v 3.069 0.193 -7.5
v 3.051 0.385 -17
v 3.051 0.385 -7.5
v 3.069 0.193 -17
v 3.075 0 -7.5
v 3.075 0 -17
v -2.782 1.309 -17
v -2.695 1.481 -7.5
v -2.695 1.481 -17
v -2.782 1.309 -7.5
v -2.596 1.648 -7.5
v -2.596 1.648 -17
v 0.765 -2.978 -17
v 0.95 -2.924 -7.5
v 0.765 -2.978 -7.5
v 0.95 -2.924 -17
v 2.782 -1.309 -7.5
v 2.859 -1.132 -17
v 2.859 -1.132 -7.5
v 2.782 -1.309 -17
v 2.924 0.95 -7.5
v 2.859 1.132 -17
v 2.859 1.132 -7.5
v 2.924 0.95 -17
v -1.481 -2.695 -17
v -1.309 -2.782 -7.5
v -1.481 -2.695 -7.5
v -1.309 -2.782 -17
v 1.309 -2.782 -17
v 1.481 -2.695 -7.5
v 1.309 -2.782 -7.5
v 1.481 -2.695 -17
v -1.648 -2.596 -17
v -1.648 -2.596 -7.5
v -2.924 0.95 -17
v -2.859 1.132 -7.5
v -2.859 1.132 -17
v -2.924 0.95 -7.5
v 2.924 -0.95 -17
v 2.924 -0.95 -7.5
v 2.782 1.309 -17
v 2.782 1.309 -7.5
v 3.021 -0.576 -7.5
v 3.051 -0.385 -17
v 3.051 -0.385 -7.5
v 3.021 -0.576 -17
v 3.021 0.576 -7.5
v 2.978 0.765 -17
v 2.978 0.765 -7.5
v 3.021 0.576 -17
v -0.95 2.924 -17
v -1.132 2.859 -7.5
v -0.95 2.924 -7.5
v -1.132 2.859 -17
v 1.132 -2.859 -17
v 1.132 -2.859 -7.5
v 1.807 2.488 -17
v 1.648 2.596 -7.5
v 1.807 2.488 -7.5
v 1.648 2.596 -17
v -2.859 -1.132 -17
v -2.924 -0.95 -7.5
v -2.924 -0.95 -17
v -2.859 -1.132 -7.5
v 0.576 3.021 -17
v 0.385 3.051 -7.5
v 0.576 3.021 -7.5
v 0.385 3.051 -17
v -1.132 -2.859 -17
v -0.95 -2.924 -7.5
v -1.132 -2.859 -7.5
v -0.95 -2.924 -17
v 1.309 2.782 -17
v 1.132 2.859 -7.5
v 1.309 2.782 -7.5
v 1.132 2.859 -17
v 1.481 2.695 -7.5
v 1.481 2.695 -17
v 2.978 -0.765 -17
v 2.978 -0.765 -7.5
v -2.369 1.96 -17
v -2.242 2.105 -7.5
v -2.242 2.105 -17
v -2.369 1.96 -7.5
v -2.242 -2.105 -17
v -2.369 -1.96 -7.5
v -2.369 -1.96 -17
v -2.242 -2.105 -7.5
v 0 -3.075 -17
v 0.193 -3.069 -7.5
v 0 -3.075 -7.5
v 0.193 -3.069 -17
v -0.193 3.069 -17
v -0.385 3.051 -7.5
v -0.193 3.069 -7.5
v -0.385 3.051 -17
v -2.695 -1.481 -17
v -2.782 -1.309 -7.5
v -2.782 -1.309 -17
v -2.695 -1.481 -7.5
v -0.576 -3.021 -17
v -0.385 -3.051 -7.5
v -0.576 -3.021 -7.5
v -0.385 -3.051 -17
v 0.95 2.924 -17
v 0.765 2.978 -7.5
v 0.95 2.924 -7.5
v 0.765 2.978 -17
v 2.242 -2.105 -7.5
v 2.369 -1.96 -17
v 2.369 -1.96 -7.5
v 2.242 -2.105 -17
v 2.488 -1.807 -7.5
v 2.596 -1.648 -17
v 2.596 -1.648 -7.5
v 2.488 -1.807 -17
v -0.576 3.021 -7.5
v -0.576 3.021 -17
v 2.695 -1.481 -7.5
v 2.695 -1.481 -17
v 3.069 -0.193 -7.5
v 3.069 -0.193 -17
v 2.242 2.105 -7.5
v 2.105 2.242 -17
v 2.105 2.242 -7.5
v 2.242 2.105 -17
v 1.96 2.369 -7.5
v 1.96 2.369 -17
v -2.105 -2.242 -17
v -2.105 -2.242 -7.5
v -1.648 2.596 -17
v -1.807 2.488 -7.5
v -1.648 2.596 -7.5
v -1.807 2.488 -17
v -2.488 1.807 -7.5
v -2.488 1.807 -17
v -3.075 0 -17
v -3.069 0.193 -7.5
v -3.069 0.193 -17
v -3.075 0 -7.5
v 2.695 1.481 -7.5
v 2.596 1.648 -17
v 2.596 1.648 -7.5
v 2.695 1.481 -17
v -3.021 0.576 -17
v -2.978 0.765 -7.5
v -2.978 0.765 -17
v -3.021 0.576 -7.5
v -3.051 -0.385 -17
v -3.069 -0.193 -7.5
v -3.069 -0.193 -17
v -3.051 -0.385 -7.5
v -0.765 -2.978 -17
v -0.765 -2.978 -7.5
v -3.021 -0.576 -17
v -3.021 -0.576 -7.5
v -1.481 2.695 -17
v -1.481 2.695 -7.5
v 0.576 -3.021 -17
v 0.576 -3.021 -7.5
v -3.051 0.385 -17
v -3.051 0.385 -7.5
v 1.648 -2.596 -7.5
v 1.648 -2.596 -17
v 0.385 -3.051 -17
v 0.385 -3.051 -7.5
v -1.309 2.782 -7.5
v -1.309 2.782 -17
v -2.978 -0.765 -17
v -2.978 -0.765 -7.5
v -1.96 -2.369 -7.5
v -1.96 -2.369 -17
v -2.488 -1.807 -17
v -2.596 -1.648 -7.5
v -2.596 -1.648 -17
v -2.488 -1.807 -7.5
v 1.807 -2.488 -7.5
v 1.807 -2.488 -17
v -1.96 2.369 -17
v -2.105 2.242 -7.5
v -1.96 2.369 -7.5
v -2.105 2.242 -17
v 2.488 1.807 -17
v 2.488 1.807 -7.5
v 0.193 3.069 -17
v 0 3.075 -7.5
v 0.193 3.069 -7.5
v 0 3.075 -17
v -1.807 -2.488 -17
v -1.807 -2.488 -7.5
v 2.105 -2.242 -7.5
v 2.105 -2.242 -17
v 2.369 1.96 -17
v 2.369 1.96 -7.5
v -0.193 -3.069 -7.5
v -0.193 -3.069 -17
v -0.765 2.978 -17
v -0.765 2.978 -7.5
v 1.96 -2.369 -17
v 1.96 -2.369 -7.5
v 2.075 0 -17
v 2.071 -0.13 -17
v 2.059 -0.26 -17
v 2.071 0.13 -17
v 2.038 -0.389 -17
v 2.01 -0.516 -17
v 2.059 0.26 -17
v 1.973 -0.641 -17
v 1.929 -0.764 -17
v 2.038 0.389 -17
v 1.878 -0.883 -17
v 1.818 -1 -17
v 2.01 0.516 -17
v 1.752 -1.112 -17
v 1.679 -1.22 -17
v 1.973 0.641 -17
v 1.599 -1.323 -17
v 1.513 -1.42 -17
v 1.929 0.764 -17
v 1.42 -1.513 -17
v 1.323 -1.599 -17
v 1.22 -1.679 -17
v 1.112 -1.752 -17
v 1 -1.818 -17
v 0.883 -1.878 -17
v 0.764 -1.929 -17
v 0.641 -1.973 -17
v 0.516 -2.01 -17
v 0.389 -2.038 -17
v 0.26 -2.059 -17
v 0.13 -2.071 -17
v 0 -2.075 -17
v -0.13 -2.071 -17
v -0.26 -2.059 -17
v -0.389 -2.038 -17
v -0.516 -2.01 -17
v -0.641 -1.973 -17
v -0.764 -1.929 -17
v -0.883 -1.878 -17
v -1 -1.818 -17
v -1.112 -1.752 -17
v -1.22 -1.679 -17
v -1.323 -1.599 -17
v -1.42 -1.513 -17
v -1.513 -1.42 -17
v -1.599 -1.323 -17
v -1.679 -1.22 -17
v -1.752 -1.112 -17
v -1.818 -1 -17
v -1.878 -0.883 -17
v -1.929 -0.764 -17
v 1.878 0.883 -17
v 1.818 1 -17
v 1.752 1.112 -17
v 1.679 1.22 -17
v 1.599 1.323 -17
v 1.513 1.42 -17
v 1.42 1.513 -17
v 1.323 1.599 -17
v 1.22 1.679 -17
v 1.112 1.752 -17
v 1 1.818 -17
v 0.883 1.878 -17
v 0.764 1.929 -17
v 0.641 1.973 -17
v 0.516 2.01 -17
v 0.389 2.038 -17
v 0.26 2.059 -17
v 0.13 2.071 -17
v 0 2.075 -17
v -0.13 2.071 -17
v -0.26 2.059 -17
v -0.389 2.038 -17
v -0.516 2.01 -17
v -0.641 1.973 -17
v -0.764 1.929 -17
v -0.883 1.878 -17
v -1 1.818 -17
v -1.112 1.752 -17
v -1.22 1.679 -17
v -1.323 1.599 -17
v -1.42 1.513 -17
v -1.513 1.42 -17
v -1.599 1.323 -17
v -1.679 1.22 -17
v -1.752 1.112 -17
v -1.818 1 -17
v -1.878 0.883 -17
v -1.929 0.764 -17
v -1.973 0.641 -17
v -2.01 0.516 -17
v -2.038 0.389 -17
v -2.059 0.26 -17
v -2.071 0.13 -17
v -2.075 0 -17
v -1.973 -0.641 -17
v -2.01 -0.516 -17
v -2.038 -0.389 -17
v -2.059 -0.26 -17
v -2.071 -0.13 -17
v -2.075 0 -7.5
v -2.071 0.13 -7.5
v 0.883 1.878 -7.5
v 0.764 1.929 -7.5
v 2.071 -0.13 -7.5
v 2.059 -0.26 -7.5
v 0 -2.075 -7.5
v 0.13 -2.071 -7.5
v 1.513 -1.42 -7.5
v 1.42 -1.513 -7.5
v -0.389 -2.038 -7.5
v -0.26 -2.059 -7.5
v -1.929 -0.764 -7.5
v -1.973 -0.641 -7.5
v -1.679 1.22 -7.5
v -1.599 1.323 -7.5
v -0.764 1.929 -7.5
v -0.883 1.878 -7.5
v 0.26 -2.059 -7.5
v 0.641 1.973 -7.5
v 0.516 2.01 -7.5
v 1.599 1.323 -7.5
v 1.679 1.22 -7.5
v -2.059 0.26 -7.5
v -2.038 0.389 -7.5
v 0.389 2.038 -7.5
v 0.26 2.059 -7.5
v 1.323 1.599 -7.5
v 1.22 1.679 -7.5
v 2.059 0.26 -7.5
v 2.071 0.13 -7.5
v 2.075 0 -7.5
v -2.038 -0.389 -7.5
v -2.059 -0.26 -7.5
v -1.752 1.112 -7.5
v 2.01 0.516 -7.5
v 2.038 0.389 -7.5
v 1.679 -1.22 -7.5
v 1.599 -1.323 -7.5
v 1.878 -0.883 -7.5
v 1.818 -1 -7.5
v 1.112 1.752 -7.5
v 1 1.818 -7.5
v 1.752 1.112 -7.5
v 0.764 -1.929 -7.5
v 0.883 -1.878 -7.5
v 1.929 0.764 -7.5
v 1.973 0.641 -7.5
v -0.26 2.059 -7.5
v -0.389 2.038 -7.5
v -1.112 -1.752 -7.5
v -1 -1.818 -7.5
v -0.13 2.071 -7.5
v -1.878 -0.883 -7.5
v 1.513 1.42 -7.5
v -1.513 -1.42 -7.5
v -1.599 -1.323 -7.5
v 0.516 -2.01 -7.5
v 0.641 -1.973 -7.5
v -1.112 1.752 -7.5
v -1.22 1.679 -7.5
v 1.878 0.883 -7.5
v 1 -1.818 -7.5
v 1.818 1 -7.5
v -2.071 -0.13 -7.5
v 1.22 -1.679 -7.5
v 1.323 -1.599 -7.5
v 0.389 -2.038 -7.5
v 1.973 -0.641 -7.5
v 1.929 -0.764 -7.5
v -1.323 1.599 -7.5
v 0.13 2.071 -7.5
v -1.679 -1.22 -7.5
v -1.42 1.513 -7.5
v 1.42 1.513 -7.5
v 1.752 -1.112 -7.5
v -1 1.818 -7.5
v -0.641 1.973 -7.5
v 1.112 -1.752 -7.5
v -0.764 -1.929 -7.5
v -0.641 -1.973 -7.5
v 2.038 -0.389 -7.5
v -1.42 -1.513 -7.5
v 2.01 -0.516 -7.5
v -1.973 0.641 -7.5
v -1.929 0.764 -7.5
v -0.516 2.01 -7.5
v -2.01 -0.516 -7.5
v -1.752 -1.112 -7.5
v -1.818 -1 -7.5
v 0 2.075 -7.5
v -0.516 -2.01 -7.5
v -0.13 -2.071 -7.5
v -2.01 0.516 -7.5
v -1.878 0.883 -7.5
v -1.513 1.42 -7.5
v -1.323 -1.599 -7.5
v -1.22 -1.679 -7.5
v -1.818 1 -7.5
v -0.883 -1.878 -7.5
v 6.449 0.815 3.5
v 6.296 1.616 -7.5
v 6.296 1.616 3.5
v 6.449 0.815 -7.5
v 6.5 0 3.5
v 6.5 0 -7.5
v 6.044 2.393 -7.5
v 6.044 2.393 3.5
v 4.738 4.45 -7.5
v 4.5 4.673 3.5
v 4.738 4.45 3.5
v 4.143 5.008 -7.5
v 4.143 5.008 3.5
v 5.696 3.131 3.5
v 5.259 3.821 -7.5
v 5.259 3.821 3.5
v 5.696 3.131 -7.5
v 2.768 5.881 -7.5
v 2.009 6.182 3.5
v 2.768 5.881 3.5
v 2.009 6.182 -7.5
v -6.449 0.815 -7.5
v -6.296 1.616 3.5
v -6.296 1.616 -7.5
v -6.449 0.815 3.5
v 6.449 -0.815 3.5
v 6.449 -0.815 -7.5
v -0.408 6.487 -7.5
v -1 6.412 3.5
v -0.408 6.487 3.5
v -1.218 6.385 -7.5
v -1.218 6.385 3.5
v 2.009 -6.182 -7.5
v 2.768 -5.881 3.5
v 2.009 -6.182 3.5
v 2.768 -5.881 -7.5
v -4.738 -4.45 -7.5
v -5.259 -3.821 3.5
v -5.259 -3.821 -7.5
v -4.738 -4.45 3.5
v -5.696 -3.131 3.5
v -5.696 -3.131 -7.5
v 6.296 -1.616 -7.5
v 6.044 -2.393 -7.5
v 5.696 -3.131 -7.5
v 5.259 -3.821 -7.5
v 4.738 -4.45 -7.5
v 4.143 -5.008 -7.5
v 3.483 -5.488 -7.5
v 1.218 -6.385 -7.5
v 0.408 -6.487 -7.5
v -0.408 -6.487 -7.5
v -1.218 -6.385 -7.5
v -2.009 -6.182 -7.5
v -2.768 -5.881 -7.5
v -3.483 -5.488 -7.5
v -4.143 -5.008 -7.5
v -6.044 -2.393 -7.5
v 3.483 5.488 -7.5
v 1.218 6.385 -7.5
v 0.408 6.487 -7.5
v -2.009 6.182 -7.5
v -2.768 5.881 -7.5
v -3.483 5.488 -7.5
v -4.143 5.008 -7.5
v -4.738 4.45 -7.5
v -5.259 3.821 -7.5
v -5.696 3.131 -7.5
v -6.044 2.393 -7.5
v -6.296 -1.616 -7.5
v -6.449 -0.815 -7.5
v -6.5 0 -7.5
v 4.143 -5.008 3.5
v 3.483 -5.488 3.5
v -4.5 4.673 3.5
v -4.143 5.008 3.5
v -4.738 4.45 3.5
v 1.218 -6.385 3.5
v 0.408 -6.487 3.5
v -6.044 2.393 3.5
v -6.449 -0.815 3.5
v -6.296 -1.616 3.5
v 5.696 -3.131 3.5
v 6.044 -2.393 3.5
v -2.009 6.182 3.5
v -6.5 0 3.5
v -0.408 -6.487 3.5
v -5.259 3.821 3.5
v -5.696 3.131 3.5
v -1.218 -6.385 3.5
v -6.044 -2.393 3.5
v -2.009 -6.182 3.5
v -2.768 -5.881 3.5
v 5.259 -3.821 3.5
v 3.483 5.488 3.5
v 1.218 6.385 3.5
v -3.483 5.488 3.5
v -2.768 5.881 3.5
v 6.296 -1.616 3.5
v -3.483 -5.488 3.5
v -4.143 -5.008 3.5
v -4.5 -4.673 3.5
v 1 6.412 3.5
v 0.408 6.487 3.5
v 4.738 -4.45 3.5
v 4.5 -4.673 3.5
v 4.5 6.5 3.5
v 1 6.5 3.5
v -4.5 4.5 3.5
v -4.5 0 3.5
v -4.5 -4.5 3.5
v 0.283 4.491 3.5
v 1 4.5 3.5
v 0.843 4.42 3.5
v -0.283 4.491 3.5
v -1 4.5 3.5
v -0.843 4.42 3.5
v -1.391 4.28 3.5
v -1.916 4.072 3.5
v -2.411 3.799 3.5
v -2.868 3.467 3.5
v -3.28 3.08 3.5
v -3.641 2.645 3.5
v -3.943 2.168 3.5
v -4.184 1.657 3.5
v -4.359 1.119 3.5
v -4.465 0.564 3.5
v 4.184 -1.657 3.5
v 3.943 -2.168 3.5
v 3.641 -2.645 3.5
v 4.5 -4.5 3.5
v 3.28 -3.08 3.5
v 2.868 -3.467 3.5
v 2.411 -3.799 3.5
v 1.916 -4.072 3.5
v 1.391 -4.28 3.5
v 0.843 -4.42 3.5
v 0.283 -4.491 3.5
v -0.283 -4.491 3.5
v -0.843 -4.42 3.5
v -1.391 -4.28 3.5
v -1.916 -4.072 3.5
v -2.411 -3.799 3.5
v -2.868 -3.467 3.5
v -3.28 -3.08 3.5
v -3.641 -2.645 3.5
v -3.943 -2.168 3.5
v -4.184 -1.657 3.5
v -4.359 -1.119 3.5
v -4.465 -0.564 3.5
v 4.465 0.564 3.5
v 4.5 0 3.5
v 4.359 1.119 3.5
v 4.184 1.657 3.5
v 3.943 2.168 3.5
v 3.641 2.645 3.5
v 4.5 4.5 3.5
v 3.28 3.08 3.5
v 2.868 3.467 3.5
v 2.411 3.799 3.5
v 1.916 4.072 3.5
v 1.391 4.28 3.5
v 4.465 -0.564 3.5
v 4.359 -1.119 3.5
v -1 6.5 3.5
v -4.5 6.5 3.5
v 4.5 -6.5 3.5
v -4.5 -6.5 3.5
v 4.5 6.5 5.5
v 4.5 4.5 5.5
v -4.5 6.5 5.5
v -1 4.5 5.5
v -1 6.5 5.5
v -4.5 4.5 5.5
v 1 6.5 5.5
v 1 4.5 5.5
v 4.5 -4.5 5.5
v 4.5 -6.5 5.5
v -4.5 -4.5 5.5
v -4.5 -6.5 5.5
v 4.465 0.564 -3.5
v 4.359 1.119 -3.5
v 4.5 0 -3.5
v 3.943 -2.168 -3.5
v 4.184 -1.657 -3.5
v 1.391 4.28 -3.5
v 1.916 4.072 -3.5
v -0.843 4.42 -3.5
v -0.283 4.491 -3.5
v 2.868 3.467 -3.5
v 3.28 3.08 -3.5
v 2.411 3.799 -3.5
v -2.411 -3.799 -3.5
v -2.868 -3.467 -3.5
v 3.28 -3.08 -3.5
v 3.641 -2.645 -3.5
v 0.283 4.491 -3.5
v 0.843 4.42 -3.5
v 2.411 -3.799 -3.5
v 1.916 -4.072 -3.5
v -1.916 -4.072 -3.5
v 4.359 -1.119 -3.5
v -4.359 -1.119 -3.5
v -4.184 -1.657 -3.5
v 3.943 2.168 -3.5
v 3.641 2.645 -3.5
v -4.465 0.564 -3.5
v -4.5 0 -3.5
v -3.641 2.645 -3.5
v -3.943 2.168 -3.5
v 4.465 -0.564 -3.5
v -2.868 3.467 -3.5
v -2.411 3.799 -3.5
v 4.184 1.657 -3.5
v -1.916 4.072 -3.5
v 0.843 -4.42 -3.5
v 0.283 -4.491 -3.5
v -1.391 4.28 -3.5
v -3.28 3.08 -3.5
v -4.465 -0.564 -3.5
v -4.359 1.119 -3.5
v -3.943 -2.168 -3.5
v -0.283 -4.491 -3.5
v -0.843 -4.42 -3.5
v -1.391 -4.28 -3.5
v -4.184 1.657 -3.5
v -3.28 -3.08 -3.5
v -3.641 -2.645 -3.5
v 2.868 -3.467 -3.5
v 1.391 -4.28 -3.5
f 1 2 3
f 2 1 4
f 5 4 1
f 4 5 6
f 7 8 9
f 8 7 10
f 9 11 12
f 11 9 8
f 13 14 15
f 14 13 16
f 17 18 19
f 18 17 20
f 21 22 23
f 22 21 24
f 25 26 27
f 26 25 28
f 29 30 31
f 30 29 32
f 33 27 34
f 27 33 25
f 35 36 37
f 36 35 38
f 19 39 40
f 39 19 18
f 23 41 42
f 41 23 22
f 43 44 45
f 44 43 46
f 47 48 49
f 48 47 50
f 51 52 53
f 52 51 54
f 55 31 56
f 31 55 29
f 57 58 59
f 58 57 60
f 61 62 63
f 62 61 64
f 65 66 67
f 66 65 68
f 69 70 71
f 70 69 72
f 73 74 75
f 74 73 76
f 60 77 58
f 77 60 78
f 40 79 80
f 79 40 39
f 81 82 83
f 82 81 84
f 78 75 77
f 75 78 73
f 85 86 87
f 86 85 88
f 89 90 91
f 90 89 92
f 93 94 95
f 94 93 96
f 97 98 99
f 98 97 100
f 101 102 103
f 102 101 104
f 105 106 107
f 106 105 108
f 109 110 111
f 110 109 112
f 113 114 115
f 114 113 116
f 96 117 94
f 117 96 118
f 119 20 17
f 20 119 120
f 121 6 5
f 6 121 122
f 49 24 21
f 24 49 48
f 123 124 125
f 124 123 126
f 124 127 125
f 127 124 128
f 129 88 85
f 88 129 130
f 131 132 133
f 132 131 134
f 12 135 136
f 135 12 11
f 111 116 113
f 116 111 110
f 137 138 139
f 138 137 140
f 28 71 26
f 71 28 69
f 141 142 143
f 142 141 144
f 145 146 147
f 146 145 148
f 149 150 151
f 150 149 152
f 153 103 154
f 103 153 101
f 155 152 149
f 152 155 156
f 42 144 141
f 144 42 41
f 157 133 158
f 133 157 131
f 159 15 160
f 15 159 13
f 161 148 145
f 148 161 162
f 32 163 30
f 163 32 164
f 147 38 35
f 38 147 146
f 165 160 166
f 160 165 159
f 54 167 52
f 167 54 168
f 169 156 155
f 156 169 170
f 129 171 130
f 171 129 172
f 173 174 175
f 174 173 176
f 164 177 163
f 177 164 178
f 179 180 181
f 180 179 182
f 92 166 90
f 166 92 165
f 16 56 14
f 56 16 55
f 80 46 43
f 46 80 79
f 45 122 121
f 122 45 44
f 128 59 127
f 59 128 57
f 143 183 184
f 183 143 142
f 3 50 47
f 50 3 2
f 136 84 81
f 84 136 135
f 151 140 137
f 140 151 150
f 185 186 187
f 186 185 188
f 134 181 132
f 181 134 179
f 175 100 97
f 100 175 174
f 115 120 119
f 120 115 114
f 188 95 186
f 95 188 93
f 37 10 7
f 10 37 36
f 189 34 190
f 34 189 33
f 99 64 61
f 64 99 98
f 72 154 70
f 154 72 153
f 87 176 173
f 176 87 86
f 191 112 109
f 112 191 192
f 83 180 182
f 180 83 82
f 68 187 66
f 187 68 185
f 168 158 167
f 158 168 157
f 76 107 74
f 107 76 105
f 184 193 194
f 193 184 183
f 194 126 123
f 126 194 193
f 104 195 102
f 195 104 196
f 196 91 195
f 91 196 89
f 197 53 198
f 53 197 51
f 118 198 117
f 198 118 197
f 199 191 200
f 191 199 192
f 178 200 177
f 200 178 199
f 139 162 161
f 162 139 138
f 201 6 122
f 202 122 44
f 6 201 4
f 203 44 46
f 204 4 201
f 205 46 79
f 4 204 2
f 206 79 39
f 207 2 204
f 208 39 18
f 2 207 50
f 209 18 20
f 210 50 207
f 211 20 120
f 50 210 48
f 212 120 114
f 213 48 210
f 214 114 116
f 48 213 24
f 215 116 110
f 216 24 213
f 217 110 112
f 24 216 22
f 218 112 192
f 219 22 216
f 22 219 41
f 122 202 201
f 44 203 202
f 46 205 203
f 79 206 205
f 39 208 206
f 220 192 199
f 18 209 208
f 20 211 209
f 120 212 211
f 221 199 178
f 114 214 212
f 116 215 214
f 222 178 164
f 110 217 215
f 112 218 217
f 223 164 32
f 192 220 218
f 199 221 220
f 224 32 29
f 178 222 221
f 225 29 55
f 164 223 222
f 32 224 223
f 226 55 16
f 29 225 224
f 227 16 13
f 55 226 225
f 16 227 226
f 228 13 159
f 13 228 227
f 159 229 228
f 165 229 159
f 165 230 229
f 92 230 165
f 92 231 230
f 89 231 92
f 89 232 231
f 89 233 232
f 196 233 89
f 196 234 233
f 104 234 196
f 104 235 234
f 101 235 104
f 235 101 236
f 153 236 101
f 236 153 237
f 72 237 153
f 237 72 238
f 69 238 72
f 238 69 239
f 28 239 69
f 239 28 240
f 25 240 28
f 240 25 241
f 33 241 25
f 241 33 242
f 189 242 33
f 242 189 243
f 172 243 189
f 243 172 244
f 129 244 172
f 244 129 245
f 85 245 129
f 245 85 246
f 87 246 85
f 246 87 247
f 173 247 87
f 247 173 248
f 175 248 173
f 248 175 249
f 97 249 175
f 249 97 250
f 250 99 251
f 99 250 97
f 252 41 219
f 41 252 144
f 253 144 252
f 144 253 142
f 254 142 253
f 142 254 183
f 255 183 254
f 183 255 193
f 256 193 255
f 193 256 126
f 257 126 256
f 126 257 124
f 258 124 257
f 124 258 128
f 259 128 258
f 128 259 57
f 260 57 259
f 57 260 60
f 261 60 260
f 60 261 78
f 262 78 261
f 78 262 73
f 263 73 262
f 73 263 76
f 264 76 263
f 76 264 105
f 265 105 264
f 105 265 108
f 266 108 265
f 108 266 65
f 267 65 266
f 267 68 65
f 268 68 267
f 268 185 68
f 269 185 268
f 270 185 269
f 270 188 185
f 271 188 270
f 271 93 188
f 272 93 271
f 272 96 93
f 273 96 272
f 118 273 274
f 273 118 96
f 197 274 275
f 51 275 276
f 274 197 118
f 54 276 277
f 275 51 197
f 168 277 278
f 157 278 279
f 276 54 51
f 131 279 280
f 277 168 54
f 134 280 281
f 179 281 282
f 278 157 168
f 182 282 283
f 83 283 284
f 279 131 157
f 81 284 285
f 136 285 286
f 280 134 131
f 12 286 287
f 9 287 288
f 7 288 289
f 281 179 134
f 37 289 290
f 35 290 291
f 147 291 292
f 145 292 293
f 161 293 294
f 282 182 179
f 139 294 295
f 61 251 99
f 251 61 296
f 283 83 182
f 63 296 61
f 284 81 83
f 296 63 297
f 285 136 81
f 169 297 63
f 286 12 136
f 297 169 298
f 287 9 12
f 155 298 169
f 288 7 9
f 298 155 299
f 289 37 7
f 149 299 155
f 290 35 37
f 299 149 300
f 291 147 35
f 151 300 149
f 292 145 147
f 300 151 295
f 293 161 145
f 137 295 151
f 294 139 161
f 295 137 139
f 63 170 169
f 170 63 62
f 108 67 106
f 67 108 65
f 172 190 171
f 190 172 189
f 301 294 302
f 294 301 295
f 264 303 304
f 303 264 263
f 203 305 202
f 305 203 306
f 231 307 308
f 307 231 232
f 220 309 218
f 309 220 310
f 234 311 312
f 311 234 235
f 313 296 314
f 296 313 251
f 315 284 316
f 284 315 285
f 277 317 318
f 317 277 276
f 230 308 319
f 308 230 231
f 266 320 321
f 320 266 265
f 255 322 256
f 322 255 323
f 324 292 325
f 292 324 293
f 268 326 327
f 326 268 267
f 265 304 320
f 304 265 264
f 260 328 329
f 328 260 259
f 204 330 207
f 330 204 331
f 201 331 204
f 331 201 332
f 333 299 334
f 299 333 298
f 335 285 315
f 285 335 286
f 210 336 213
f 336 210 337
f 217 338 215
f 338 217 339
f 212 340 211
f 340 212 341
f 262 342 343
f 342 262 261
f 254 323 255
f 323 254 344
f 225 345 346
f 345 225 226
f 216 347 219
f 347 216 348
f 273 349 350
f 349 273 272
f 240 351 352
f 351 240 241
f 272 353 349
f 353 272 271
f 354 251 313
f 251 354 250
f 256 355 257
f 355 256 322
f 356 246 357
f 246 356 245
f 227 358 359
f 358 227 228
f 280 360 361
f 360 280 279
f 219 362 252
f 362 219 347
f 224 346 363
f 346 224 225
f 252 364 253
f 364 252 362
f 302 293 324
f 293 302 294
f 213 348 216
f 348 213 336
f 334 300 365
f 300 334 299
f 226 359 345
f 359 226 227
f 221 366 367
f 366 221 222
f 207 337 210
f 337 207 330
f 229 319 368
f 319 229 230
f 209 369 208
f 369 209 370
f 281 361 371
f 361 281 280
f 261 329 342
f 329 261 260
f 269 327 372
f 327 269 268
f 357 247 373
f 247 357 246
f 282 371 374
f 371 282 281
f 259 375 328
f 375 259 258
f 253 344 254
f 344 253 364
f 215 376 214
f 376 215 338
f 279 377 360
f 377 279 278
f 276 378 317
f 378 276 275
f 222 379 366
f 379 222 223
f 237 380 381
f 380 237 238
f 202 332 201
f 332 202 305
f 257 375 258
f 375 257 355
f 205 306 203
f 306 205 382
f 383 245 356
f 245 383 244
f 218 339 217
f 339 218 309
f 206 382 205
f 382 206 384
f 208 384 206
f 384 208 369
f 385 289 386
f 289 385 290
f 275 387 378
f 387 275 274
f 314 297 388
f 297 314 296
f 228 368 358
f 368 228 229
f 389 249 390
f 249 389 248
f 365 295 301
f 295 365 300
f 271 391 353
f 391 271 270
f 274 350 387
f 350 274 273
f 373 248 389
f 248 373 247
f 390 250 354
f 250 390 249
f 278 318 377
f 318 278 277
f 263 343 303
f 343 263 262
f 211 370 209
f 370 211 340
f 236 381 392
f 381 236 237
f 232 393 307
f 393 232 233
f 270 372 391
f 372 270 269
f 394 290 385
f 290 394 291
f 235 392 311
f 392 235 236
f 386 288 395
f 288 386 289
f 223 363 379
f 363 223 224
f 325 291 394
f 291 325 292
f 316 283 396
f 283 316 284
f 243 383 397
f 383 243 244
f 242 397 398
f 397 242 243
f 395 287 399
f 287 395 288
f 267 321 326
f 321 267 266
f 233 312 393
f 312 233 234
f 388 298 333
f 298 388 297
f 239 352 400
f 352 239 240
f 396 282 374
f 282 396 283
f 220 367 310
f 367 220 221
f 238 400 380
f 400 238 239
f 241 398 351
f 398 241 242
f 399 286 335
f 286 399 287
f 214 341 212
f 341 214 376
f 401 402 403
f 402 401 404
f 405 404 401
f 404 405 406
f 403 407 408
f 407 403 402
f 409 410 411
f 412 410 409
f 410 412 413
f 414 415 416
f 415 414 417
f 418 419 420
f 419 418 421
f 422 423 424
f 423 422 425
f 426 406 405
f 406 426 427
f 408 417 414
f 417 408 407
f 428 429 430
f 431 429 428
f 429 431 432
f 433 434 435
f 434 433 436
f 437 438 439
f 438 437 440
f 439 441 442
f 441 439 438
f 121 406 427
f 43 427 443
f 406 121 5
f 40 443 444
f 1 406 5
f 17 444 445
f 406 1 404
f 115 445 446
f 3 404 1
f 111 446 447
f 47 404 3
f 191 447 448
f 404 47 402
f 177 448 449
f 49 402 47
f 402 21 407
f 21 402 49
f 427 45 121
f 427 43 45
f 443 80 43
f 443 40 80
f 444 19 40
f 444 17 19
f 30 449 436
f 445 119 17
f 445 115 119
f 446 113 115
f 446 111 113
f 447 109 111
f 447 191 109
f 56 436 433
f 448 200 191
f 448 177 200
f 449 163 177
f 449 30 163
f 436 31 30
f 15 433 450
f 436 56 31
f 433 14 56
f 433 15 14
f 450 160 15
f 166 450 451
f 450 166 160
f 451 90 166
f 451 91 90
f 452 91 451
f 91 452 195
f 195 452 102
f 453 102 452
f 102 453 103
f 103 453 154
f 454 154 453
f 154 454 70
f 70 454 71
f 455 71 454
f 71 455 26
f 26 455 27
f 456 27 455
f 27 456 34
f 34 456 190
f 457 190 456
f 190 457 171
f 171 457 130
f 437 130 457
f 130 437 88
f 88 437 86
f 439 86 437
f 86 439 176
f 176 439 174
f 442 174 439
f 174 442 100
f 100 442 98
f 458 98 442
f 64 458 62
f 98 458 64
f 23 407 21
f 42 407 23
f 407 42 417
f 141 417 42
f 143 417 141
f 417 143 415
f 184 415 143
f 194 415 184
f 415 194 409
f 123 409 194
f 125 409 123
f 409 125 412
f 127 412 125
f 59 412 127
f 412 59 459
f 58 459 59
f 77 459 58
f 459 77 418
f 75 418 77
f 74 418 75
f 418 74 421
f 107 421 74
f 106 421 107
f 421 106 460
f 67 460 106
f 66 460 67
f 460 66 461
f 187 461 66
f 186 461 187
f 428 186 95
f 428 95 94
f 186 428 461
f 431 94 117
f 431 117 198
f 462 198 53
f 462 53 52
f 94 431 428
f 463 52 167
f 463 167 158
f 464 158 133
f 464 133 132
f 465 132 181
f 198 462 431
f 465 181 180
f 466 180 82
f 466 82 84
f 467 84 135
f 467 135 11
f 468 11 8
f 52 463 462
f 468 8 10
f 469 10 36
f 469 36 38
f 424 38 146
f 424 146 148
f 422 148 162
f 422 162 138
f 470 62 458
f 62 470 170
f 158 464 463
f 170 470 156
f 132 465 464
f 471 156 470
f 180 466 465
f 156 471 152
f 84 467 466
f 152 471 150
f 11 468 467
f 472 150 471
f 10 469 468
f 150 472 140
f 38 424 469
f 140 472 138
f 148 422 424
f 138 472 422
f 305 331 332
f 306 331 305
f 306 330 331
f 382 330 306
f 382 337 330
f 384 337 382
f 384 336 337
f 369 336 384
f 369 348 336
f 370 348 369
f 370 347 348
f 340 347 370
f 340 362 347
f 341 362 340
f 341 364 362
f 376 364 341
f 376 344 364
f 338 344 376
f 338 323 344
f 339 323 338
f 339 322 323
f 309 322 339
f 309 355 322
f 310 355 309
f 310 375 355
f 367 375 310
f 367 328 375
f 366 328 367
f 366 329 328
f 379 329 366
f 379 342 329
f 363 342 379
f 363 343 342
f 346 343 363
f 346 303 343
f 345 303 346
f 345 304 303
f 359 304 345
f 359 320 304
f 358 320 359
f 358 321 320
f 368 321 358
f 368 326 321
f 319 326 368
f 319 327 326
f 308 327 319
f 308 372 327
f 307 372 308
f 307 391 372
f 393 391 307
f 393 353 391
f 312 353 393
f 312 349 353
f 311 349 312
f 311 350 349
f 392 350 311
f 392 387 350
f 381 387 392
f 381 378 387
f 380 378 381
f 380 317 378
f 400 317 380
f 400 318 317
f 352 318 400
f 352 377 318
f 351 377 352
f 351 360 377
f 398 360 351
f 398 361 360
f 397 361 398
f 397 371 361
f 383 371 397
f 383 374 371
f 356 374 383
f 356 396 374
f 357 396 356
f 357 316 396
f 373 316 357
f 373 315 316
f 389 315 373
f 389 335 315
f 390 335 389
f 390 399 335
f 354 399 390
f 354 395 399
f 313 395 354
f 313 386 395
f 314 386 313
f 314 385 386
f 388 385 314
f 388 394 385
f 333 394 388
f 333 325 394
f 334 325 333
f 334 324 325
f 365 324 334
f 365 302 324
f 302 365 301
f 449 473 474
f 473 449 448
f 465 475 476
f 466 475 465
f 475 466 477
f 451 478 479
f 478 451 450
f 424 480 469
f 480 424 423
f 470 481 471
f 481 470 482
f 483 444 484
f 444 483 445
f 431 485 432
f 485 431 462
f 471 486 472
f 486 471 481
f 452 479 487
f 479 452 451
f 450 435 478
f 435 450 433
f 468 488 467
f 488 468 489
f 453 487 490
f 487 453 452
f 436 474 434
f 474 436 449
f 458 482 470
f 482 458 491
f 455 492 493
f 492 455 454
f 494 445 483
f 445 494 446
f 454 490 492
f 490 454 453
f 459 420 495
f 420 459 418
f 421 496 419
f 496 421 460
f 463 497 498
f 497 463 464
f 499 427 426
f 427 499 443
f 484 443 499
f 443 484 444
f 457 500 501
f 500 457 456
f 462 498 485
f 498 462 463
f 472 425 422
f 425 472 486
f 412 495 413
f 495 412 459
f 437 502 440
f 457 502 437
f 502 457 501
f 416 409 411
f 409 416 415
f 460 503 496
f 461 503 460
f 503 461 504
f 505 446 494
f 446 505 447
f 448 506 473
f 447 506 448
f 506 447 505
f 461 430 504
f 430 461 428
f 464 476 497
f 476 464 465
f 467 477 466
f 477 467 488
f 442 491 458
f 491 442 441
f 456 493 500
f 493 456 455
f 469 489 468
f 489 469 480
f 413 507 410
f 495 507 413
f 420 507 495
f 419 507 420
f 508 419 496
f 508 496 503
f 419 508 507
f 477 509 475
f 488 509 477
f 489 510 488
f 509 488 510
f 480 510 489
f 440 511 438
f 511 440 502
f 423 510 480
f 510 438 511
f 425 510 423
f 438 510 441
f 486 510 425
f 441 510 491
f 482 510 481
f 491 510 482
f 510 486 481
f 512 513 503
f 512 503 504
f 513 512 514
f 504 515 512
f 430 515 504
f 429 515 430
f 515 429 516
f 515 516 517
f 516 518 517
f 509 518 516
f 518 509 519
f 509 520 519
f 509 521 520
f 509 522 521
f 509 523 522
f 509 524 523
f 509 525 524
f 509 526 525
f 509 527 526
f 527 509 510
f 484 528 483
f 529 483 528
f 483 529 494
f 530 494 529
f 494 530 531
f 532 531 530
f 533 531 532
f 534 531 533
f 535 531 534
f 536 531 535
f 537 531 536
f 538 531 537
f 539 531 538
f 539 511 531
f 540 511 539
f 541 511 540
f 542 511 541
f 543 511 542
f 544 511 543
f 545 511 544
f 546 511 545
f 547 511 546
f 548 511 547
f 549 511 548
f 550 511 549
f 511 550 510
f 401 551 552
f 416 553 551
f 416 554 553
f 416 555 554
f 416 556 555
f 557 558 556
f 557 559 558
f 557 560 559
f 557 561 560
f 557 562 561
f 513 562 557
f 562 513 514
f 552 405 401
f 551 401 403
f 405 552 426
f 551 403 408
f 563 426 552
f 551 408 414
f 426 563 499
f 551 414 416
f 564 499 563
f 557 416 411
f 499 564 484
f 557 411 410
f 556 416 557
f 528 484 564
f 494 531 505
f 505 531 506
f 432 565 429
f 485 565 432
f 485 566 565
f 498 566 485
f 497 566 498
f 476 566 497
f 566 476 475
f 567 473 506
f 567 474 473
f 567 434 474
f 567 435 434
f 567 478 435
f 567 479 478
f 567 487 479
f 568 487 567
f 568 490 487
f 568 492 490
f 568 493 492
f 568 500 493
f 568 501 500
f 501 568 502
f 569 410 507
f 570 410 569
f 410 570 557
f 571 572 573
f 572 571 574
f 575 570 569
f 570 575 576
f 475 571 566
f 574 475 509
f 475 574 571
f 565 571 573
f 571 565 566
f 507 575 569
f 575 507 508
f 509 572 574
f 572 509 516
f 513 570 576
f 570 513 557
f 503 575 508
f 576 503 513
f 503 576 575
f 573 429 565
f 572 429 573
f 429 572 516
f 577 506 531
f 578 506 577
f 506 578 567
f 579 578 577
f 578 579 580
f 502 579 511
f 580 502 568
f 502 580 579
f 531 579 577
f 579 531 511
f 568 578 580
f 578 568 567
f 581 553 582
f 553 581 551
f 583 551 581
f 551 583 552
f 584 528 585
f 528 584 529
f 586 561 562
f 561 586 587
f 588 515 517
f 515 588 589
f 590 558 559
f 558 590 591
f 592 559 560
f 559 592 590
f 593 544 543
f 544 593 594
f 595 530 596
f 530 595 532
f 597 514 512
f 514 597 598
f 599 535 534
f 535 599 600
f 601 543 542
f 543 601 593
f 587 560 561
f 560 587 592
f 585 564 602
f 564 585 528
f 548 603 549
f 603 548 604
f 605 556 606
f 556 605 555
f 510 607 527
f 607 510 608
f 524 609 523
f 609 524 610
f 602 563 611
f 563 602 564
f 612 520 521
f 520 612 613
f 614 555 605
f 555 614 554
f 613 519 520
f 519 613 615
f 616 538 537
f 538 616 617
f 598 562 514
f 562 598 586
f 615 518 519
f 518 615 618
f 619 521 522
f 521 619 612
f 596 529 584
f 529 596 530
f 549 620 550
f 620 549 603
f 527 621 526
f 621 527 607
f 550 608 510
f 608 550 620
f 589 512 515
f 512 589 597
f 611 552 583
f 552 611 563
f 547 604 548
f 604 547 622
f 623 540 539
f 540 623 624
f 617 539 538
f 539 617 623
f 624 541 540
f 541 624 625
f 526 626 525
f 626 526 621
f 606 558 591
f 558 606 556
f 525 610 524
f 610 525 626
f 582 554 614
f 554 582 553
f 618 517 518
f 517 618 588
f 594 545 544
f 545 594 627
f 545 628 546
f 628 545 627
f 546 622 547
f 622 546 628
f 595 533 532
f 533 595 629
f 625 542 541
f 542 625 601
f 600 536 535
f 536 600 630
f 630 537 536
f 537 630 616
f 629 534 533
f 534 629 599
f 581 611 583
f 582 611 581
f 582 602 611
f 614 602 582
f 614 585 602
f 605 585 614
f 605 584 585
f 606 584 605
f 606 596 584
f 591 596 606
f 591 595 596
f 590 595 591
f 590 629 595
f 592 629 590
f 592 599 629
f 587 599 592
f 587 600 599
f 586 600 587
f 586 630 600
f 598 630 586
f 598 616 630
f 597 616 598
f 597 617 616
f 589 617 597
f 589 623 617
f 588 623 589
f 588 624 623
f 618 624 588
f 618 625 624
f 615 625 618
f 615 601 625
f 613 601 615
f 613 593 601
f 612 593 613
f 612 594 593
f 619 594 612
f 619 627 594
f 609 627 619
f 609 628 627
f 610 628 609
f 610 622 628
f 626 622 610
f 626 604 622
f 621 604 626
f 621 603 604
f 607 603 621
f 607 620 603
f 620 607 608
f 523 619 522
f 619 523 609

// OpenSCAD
// file: bottom_pin.scad
// This is the bottom pin which is used to mount the sample holders into the machines.
// Since we use this for most of our models, it makes sense to have a small 'template' which we can just add the model where it's needed...
// To do so, add a line with "use<bottom_pin.scad>"
// And then just call "pin();" wherever you need the pin :)
$fn=100;
module pin(diameter=6.15, height=20, cap_depth=2)
{
    translate([0,0,-height]) difference(){
        cylinder(d=diameter,h=height);
        cylinder(d=diameter-2,h=height-cap_depth);
    }
}
pin();
// main file
// For a collaboration with the University hospital in Bern were scanning 'bone domes' into which the bone grows into
// The goal is to look at volume and bone density, so we need to also scan a bone density phantom 
$fn=50;

use <bottom_pin.scad>


// define variables
height=7;
diameter=9;
wall_thickness=2;

// generate the two things we need
module dome() {
    #cylinder(d=diameter, h=height, center=true );
    }
module holder() {
    union() { // Collect the bottom pin and the cylinder
        translate([0,0,-wall_thickness]) {
            pin(height=15);
            cylinder(d=diameter+2*wall_thickness,h=height+2*wall_thickness, center=true);
            }
            // guard rails (one with a hole for orientation)
            translate([0, (-diameter-wall_thickness)/2, (height+wall_thickness)/2]) cube([diameter, wall_thickness, wall_thickness], center=true);            
            translate([0, (diameter+wall_thickness)/2, (height+wall_thickness)/2]) difference() {
                cube([diameter, wall_thickness,wall_thickness], center=true);
                cube([wall_thickness, wall_thickness, wall_thickness],center=true);
            }
        }
    }

// Collect dome and holder and 'drill' the latter into the former
difference(){
    holder();
    dome();
    }
